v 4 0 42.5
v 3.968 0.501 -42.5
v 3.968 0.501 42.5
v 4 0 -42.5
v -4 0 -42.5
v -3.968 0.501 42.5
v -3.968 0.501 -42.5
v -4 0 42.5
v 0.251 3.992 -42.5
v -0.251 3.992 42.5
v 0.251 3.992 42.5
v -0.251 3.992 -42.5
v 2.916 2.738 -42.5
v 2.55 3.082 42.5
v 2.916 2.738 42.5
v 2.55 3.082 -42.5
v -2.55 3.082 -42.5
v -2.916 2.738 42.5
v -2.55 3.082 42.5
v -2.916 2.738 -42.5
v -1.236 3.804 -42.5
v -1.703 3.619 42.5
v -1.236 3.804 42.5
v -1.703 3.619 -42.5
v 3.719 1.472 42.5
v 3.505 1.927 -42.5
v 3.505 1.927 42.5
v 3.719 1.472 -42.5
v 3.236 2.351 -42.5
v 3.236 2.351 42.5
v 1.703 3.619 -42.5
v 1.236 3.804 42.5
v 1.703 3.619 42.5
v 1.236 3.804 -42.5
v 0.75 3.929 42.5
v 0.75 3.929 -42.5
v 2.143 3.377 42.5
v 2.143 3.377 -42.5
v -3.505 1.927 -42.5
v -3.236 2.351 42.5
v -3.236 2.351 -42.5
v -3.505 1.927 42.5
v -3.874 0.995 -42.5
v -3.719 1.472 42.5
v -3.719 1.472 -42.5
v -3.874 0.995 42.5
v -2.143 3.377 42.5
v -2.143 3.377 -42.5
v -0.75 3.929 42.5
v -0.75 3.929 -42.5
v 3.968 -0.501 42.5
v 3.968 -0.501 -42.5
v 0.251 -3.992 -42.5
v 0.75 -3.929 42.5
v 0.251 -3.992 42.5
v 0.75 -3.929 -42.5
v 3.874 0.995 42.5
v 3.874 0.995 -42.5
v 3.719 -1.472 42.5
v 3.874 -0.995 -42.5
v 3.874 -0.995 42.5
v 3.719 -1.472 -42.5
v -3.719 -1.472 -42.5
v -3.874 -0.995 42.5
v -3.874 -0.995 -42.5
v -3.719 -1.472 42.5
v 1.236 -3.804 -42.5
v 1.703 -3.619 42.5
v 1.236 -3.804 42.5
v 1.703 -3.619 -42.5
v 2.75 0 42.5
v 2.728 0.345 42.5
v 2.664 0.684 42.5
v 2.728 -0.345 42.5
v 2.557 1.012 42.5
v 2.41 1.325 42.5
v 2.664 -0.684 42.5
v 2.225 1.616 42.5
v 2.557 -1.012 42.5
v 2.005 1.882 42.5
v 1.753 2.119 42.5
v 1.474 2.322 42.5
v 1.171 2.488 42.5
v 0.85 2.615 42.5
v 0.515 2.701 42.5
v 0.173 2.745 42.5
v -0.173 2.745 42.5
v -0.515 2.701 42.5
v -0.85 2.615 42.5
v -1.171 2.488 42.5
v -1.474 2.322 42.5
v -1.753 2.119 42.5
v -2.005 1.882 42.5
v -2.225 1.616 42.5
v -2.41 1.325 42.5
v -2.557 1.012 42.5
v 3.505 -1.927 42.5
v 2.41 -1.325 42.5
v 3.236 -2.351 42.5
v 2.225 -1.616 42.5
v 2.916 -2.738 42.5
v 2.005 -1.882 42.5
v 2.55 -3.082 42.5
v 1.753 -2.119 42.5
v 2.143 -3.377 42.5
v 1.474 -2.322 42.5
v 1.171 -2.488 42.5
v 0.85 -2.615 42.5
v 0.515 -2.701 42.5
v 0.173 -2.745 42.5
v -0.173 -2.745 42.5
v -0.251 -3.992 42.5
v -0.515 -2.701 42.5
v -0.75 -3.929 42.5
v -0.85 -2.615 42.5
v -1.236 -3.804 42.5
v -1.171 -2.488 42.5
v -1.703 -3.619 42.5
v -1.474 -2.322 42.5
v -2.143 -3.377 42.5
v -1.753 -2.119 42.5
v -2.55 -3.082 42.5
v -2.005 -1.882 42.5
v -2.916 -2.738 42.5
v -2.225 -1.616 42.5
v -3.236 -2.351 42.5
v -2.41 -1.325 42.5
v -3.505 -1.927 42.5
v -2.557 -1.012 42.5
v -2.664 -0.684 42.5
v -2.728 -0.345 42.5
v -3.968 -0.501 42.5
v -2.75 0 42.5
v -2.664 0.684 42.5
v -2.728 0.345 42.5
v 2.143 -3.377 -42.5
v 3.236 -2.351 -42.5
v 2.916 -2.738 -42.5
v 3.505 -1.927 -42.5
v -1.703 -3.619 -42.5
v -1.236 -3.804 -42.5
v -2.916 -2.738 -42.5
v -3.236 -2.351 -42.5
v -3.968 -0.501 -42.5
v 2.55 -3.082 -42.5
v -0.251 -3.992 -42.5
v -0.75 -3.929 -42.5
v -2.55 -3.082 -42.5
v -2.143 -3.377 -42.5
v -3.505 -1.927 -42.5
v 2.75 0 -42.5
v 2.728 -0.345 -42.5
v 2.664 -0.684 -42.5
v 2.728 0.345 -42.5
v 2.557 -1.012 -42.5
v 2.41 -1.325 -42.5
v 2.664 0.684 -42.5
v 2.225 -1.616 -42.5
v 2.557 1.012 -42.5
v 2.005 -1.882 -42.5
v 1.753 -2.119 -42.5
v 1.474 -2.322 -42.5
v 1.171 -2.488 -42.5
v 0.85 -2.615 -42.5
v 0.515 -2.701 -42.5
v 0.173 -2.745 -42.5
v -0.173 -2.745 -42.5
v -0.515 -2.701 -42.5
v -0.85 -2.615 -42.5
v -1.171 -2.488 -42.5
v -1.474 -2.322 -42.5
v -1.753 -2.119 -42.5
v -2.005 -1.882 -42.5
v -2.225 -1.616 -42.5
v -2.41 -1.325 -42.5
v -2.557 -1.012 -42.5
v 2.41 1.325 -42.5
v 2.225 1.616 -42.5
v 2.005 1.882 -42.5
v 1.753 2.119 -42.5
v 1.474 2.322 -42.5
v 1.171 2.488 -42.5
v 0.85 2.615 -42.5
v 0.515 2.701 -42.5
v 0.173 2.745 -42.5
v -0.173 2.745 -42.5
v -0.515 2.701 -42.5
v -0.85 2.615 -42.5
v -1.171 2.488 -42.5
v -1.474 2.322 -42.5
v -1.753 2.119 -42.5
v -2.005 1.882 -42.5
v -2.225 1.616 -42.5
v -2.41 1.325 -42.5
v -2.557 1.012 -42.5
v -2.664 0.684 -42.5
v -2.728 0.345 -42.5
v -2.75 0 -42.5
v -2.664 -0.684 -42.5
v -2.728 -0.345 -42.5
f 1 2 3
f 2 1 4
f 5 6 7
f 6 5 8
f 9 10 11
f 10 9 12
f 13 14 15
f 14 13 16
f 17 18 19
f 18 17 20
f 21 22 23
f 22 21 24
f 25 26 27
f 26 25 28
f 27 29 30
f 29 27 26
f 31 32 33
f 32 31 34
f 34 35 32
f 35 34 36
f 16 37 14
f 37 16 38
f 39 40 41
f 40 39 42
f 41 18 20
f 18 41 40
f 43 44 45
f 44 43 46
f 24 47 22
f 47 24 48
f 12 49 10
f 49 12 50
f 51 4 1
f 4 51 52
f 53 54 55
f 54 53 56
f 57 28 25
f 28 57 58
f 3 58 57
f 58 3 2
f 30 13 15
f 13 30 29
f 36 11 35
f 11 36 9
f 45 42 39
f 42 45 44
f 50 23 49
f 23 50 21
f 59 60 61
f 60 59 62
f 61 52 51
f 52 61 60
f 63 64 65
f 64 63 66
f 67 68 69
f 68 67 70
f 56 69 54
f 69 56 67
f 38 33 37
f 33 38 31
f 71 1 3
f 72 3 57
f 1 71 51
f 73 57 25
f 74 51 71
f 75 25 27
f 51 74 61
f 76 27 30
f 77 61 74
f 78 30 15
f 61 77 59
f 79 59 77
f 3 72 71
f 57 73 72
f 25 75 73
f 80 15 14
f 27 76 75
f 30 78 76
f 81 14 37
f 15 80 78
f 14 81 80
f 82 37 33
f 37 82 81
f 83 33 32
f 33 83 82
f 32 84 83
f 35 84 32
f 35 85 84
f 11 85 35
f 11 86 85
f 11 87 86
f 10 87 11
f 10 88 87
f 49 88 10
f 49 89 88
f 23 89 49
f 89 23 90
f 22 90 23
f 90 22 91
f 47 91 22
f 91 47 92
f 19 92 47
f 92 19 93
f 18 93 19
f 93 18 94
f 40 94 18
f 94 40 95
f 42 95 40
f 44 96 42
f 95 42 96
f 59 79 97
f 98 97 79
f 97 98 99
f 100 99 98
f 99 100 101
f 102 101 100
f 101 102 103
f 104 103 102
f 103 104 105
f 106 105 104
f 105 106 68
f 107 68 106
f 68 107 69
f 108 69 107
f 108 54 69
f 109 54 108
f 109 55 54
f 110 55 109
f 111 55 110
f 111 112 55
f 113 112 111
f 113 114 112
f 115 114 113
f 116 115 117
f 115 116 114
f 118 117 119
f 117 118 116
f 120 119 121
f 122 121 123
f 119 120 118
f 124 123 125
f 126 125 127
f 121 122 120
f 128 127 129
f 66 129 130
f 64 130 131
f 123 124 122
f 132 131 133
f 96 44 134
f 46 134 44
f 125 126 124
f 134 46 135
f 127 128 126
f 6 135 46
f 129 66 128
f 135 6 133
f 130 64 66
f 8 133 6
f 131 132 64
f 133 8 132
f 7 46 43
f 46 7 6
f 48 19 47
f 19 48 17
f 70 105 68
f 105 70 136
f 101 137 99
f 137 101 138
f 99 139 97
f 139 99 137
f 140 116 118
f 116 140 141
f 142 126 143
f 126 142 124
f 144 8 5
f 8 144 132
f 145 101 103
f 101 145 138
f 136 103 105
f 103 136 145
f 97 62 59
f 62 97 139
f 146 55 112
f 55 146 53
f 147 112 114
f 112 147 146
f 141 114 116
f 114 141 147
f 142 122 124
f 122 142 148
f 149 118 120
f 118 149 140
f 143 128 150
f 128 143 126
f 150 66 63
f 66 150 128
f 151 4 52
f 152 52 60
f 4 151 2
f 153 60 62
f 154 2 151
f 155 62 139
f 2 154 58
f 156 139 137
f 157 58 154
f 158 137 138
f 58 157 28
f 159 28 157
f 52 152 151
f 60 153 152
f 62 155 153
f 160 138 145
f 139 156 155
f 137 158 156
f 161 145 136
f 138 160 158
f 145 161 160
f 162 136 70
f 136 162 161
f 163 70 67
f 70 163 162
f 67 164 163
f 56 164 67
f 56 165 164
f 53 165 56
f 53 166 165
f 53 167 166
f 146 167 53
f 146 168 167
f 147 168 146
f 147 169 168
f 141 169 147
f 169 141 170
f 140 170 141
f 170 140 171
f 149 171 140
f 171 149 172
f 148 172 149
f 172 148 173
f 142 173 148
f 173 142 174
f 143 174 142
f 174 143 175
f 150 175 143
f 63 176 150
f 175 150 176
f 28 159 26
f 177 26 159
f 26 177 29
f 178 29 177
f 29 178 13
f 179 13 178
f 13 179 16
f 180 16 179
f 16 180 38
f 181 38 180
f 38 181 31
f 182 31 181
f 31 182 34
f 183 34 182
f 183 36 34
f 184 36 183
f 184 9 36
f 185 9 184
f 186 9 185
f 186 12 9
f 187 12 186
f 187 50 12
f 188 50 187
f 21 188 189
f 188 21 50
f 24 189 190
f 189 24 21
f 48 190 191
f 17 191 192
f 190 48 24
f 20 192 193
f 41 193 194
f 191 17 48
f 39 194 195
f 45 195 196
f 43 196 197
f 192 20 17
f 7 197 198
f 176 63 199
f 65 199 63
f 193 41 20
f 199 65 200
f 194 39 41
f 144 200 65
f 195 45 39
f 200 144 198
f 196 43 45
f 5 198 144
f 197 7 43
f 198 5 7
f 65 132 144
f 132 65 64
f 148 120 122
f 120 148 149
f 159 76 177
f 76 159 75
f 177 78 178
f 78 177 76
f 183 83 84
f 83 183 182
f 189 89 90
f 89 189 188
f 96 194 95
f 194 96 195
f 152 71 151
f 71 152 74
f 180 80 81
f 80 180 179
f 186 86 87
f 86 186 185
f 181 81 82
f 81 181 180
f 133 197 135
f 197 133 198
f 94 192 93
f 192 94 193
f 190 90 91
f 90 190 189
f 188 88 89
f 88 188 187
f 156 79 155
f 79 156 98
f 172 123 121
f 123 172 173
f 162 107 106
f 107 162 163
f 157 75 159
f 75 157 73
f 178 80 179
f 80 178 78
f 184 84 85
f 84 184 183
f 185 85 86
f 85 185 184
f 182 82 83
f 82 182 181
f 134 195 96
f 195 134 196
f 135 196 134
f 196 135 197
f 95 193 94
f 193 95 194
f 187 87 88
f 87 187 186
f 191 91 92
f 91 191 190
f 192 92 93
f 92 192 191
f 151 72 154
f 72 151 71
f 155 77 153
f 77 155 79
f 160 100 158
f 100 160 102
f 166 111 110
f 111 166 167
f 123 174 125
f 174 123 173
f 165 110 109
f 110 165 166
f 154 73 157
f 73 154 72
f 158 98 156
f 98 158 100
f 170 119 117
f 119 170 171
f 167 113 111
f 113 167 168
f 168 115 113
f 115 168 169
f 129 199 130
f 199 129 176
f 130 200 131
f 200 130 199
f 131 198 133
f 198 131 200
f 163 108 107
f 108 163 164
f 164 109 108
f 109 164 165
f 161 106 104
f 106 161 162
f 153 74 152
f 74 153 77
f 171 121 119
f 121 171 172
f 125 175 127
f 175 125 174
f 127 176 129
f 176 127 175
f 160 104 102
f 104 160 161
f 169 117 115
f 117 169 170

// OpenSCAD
$fn = 50;


difference() {
	union() {
		translate(v = [0, 0, -42.5000000000]) {
			cylinder(h = 85, r = 4.0000000000);
		}
	}
	union() {
		translate(v = [0, 0, -100.0000000000]) {
			cylinder(h = 200, r = 2.7500000000);
		}
	}
}
